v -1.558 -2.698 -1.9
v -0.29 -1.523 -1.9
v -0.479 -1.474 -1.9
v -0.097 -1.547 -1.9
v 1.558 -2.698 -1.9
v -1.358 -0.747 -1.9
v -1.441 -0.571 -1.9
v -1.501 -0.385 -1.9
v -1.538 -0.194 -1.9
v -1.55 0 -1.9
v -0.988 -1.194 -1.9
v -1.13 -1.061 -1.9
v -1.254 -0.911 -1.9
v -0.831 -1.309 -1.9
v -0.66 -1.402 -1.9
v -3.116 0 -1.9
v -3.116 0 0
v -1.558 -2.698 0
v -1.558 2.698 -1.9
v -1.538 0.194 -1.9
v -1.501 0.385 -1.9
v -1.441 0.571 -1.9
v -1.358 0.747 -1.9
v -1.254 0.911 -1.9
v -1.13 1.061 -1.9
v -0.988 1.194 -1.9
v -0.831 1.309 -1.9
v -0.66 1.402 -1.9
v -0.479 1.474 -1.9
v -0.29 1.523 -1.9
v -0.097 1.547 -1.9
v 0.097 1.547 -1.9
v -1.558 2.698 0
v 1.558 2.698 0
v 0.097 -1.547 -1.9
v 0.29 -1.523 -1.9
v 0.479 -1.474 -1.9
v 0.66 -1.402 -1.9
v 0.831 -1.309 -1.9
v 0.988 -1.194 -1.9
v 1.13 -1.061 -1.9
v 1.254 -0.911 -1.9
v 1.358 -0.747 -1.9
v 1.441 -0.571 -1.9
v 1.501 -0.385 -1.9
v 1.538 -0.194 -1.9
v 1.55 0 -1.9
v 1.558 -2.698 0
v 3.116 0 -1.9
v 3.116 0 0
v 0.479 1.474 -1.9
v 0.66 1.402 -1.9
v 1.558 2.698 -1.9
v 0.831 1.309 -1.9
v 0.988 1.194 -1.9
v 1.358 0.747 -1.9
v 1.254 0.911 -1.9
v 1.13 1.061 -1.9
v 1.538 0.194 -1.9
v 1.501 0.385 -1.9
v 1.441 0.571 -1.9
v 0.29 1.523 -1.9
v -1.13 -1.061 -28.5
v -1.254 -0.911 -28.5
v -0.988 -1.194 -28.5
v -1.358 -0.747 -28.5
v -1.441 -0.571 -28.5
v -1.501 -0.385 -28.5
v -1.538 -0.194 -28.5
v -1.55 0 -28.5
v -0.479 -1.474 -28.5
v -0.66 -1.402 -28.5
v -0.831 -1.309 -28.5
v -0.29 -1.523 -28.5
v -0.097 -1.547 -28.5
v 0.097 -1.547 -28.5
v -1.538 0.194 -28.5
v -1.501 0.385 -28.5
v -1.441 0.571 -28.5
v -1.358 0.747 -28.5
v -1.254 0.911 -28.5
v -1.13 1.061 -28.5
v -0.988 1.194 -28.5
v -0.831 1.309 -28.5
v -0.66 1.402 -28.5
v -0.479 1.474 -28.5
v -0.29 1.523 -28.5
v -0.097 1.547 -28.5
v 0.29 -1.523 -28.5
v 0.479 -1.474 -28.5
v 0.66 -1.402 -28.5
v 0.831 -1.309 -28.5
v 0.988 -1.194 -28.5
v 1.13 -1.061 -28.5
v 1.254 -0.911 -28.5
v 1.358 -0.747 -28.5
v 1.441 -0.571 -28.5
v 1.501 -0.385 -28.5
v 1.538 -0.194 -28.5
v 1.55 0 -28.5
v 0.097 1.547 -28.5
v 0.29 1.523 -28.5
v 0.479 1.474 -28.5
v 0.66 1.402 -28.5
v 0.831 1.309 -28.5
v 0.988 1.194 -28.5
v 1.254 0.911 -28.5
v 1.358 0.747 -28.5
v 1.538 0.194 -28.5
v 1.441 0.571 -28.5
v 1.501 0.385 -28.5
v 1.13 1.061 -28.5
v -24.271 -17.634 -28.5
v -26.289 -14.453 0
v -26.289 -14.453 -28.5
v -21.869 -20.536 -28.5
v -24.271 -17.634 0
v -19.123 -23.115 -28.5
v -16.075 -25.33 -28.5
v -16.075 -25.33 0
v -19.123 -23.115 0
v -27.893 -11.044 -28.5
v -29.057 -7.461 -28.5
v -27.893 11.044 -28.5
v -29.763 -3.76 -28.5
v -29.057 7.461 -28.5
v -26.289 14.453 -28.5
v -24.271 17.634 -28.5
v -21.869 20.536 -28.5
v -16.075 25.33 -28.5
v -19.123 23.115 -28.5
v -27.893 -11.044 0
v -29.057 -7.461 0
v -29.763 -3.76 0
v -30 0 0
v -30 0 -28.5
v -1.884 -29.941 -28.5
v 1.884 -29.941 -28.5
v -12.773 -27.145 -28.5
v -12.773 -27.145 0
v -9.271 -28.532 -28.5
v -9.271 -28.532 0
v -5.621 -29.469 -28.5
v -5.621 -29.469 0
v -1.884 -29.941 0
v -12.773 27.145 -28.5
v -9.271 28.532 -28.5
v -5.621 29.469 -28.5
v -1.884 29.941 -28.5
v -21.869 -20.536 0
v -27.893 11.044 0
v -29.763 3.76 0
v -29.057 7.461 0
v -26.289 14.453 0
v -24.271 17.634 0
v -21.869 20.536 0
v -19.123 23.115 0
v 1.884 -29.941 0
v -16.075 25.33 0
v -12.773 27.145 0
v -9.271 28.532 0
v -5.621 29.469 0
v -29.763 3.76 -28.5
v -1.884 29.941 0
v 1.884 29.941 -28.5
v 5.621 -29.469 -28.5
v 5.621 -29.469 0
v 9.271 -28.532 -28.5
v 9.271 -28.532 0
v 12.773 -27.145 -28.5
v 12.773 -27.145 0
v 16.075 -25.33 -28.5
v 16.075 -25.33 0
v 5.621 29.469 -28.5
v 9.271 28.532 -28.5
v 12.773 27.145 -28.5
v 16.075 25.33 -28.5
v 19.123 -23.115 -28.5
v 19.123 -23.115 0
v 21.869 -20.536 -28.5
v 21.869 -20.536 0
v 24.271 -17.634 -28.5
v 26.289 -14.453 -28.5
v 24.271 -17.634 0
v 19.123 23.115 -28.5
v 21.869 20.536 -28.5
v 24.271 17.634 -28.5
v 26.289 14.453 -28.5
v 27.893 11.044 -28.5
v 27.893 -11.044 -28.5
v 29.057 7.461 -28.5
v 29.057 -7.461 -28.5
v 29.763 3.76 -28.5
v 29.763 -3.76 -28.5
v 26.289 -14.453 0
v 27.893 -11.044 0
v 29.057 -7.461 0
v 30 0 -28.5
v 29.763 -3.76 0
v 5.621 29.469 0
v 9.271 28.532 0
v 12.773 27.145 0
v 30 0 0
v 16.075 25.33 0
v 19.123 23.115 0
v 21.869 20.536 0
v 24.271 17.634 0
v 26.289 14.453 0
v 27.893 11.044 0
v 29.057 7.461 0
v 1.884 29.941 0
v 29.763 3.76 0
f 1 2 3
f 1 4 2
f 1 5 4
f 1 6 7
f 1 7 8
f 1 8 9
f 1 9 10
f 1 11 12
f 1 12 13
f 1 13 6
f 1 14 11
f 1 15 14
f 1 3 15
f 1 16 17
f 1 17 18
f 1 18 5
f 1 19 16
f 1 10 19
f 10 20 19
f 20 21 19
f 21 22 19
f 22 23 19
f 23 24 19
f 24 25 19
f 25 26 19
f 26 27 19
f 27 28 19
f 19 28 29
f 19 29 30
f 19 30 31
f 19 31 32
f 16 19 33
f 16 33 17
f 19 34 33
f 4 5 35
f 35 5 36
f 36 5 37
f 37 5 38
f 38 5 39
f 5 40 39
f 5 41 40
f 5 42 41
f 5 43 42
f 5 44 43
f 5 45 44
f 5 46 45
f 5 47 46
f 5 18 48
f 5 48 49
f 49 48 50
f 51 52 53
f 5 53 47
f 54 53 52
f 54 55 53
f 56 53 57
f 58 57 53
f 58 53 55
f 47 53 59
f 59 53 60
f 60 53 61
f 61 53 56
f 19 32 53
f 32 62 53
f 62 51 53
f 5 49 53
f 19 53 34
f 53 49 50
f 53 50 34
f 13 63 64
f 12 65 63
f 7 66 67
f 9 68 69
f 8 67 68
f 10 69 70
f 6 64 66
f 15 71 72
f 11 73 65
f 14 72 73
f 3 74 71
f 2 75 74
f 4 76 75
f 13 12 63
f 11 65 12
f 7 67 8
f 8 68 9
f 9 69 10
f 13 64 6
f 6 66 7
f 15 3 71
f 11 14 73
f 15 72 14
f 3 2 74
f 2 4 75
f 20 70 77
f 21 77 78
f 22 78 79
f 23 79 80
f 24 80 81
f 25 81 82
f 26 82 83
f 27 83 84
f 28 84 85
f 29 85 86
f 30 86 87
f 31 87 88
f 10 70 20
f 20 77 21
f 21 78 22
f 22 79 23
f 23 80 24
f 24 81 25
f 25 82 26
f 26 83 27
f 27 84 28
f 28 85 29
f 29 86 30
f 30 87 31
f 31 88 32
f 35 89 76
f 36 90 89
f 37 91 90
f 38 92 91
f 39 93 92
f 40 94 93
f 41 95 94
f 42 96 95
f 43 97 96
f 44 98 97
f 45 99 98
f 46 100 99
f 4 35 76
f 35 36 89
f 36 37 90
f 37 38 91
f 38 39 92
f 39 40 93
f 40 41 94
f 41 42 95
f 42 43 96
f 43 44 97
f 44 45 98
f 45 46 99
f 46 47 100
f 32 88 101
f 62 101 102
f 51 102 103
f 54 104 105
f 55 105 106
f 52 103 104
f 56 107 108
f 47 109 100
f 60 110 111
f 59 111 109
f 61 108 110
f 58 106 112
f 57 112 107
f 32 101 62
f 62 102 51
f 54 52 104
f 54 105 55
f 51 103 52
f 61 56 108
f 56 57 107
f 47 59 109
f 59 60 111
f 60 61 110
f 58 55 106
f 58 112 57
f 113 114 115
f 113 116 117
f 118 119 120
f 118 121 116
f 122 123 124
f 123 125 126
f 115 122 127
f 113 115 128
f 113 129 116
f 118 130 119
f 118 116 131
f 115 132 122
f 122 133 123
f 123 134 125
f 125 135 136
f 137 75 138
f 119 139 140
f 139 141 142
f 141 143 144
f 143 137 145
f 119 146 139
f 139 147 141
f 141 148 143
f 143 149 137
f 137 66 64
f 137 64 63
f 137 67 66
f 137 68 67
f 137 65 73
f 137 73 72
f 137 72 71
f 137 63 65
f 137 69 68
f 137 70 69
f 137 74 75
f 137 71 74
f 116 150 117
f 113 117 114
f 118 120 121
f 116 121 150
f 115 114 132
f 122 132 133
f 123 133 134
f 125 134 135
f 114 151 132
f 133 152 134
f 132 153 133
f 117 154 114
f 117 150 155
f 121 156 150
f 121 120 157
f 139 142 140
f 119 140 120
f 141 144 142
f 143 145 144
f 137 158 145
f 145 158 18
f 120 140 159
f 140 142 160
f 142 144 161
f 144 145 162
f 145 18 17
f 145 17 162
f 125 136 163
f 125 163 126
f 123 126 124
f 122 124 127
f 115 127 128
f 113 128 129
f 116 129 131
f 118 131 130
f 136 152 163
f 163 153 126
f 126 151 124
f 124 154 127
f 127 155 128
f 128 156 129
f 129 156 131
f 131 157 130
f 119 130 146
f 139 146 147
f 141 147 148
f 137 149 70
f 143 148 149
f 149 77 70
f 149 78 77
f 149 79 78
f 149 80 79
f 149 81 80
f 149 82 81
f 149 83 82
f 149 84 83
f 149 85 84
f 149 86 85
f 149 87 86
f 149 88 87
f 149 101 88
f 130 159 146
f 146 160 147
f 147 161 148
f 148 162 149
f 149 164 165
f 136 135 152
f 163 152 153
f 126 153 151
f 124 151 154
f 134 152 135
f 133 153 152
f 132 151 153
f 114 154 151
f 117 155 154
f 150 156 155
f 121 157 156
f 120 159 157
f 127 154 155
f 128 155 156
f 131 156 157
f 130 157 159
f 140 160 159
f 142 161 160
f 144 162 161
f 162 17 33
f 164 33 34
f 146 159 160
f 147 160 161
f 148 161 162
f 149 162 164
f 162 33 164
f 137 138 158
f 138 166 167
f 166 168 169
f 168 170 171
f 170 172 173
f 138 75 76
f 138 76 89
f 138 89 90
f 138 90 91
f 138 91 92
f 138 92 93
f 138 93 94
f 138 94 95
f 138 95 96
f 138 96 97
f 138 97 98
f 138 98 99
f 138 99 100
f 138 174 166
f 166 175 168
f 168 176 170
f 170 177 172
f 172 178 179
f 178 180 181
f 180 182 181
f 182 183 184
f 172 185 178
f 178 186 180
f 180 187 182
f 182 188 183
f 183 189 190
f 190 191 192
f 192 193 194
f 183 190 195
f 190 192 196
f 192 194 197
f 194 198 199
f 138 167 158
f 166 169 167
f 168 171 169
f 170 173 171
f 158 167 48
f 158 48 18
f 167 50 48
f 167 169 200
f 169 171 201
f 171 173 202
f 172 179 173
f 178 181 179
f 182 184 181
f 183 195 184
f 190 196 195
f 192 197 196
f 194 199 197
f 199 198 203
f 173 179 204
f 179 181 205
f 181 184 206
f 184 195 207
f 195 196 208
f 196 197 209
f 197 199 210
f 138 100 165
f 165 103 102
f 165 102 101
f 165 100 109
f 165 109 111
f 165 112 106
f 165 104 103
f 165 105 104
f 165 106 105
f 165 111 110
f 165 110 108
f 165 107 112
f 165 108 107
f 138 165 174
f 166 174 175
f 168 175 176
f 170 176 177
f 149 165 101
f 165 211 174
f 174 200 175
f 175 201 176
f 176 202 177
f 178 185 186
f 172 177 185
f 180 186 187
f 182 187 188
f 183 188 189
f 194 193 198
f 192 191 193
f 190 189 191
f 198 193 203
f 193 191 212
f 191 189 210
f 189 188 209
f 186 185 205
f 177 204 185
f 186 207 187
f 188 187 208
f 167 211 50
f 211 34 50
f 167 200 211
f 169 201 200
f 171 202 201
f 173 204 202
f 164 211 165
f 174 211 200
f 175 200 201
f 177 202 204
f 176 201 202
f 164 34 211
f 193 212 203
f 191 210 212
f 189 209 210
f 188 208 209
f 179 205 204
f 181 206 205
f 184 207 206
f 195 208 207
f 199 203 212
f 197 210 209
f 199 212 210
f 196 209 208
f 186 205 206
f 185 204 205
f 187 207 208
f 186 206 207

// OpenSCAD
$fn = 50;

difference() {
	union() {
		translate(v = [0, 0, -28.5]) {
			cylinder(h = 28.5, r = 30.0);
		}
	}
	union() {
		translate(v = [0, 0, 0]) {
			rotate(a = [0, 0, 0]) {
				difference() {
					union() {
						translate(v = [0, 0, -1.9]) {
							linear_extrude(height = 1.9) {
								polygon(points = [[3.1158, 0.0], [1.5579000000000005, 2.698361953111554], [-1.5578999999999994, 2.6983619531115544], [-3.1158, 3.815754496783323e-16], [-1.5579000000000014, -2.6983619531115535], [1.557899999999998, -2.6983619531115552]]);
							}
						}
					}
					union();
				}
			}
		}
		#translate(v = [0, 0, -100.0]) {
			cylinder(h = 200, r = 1.55);
		}
	}
}
